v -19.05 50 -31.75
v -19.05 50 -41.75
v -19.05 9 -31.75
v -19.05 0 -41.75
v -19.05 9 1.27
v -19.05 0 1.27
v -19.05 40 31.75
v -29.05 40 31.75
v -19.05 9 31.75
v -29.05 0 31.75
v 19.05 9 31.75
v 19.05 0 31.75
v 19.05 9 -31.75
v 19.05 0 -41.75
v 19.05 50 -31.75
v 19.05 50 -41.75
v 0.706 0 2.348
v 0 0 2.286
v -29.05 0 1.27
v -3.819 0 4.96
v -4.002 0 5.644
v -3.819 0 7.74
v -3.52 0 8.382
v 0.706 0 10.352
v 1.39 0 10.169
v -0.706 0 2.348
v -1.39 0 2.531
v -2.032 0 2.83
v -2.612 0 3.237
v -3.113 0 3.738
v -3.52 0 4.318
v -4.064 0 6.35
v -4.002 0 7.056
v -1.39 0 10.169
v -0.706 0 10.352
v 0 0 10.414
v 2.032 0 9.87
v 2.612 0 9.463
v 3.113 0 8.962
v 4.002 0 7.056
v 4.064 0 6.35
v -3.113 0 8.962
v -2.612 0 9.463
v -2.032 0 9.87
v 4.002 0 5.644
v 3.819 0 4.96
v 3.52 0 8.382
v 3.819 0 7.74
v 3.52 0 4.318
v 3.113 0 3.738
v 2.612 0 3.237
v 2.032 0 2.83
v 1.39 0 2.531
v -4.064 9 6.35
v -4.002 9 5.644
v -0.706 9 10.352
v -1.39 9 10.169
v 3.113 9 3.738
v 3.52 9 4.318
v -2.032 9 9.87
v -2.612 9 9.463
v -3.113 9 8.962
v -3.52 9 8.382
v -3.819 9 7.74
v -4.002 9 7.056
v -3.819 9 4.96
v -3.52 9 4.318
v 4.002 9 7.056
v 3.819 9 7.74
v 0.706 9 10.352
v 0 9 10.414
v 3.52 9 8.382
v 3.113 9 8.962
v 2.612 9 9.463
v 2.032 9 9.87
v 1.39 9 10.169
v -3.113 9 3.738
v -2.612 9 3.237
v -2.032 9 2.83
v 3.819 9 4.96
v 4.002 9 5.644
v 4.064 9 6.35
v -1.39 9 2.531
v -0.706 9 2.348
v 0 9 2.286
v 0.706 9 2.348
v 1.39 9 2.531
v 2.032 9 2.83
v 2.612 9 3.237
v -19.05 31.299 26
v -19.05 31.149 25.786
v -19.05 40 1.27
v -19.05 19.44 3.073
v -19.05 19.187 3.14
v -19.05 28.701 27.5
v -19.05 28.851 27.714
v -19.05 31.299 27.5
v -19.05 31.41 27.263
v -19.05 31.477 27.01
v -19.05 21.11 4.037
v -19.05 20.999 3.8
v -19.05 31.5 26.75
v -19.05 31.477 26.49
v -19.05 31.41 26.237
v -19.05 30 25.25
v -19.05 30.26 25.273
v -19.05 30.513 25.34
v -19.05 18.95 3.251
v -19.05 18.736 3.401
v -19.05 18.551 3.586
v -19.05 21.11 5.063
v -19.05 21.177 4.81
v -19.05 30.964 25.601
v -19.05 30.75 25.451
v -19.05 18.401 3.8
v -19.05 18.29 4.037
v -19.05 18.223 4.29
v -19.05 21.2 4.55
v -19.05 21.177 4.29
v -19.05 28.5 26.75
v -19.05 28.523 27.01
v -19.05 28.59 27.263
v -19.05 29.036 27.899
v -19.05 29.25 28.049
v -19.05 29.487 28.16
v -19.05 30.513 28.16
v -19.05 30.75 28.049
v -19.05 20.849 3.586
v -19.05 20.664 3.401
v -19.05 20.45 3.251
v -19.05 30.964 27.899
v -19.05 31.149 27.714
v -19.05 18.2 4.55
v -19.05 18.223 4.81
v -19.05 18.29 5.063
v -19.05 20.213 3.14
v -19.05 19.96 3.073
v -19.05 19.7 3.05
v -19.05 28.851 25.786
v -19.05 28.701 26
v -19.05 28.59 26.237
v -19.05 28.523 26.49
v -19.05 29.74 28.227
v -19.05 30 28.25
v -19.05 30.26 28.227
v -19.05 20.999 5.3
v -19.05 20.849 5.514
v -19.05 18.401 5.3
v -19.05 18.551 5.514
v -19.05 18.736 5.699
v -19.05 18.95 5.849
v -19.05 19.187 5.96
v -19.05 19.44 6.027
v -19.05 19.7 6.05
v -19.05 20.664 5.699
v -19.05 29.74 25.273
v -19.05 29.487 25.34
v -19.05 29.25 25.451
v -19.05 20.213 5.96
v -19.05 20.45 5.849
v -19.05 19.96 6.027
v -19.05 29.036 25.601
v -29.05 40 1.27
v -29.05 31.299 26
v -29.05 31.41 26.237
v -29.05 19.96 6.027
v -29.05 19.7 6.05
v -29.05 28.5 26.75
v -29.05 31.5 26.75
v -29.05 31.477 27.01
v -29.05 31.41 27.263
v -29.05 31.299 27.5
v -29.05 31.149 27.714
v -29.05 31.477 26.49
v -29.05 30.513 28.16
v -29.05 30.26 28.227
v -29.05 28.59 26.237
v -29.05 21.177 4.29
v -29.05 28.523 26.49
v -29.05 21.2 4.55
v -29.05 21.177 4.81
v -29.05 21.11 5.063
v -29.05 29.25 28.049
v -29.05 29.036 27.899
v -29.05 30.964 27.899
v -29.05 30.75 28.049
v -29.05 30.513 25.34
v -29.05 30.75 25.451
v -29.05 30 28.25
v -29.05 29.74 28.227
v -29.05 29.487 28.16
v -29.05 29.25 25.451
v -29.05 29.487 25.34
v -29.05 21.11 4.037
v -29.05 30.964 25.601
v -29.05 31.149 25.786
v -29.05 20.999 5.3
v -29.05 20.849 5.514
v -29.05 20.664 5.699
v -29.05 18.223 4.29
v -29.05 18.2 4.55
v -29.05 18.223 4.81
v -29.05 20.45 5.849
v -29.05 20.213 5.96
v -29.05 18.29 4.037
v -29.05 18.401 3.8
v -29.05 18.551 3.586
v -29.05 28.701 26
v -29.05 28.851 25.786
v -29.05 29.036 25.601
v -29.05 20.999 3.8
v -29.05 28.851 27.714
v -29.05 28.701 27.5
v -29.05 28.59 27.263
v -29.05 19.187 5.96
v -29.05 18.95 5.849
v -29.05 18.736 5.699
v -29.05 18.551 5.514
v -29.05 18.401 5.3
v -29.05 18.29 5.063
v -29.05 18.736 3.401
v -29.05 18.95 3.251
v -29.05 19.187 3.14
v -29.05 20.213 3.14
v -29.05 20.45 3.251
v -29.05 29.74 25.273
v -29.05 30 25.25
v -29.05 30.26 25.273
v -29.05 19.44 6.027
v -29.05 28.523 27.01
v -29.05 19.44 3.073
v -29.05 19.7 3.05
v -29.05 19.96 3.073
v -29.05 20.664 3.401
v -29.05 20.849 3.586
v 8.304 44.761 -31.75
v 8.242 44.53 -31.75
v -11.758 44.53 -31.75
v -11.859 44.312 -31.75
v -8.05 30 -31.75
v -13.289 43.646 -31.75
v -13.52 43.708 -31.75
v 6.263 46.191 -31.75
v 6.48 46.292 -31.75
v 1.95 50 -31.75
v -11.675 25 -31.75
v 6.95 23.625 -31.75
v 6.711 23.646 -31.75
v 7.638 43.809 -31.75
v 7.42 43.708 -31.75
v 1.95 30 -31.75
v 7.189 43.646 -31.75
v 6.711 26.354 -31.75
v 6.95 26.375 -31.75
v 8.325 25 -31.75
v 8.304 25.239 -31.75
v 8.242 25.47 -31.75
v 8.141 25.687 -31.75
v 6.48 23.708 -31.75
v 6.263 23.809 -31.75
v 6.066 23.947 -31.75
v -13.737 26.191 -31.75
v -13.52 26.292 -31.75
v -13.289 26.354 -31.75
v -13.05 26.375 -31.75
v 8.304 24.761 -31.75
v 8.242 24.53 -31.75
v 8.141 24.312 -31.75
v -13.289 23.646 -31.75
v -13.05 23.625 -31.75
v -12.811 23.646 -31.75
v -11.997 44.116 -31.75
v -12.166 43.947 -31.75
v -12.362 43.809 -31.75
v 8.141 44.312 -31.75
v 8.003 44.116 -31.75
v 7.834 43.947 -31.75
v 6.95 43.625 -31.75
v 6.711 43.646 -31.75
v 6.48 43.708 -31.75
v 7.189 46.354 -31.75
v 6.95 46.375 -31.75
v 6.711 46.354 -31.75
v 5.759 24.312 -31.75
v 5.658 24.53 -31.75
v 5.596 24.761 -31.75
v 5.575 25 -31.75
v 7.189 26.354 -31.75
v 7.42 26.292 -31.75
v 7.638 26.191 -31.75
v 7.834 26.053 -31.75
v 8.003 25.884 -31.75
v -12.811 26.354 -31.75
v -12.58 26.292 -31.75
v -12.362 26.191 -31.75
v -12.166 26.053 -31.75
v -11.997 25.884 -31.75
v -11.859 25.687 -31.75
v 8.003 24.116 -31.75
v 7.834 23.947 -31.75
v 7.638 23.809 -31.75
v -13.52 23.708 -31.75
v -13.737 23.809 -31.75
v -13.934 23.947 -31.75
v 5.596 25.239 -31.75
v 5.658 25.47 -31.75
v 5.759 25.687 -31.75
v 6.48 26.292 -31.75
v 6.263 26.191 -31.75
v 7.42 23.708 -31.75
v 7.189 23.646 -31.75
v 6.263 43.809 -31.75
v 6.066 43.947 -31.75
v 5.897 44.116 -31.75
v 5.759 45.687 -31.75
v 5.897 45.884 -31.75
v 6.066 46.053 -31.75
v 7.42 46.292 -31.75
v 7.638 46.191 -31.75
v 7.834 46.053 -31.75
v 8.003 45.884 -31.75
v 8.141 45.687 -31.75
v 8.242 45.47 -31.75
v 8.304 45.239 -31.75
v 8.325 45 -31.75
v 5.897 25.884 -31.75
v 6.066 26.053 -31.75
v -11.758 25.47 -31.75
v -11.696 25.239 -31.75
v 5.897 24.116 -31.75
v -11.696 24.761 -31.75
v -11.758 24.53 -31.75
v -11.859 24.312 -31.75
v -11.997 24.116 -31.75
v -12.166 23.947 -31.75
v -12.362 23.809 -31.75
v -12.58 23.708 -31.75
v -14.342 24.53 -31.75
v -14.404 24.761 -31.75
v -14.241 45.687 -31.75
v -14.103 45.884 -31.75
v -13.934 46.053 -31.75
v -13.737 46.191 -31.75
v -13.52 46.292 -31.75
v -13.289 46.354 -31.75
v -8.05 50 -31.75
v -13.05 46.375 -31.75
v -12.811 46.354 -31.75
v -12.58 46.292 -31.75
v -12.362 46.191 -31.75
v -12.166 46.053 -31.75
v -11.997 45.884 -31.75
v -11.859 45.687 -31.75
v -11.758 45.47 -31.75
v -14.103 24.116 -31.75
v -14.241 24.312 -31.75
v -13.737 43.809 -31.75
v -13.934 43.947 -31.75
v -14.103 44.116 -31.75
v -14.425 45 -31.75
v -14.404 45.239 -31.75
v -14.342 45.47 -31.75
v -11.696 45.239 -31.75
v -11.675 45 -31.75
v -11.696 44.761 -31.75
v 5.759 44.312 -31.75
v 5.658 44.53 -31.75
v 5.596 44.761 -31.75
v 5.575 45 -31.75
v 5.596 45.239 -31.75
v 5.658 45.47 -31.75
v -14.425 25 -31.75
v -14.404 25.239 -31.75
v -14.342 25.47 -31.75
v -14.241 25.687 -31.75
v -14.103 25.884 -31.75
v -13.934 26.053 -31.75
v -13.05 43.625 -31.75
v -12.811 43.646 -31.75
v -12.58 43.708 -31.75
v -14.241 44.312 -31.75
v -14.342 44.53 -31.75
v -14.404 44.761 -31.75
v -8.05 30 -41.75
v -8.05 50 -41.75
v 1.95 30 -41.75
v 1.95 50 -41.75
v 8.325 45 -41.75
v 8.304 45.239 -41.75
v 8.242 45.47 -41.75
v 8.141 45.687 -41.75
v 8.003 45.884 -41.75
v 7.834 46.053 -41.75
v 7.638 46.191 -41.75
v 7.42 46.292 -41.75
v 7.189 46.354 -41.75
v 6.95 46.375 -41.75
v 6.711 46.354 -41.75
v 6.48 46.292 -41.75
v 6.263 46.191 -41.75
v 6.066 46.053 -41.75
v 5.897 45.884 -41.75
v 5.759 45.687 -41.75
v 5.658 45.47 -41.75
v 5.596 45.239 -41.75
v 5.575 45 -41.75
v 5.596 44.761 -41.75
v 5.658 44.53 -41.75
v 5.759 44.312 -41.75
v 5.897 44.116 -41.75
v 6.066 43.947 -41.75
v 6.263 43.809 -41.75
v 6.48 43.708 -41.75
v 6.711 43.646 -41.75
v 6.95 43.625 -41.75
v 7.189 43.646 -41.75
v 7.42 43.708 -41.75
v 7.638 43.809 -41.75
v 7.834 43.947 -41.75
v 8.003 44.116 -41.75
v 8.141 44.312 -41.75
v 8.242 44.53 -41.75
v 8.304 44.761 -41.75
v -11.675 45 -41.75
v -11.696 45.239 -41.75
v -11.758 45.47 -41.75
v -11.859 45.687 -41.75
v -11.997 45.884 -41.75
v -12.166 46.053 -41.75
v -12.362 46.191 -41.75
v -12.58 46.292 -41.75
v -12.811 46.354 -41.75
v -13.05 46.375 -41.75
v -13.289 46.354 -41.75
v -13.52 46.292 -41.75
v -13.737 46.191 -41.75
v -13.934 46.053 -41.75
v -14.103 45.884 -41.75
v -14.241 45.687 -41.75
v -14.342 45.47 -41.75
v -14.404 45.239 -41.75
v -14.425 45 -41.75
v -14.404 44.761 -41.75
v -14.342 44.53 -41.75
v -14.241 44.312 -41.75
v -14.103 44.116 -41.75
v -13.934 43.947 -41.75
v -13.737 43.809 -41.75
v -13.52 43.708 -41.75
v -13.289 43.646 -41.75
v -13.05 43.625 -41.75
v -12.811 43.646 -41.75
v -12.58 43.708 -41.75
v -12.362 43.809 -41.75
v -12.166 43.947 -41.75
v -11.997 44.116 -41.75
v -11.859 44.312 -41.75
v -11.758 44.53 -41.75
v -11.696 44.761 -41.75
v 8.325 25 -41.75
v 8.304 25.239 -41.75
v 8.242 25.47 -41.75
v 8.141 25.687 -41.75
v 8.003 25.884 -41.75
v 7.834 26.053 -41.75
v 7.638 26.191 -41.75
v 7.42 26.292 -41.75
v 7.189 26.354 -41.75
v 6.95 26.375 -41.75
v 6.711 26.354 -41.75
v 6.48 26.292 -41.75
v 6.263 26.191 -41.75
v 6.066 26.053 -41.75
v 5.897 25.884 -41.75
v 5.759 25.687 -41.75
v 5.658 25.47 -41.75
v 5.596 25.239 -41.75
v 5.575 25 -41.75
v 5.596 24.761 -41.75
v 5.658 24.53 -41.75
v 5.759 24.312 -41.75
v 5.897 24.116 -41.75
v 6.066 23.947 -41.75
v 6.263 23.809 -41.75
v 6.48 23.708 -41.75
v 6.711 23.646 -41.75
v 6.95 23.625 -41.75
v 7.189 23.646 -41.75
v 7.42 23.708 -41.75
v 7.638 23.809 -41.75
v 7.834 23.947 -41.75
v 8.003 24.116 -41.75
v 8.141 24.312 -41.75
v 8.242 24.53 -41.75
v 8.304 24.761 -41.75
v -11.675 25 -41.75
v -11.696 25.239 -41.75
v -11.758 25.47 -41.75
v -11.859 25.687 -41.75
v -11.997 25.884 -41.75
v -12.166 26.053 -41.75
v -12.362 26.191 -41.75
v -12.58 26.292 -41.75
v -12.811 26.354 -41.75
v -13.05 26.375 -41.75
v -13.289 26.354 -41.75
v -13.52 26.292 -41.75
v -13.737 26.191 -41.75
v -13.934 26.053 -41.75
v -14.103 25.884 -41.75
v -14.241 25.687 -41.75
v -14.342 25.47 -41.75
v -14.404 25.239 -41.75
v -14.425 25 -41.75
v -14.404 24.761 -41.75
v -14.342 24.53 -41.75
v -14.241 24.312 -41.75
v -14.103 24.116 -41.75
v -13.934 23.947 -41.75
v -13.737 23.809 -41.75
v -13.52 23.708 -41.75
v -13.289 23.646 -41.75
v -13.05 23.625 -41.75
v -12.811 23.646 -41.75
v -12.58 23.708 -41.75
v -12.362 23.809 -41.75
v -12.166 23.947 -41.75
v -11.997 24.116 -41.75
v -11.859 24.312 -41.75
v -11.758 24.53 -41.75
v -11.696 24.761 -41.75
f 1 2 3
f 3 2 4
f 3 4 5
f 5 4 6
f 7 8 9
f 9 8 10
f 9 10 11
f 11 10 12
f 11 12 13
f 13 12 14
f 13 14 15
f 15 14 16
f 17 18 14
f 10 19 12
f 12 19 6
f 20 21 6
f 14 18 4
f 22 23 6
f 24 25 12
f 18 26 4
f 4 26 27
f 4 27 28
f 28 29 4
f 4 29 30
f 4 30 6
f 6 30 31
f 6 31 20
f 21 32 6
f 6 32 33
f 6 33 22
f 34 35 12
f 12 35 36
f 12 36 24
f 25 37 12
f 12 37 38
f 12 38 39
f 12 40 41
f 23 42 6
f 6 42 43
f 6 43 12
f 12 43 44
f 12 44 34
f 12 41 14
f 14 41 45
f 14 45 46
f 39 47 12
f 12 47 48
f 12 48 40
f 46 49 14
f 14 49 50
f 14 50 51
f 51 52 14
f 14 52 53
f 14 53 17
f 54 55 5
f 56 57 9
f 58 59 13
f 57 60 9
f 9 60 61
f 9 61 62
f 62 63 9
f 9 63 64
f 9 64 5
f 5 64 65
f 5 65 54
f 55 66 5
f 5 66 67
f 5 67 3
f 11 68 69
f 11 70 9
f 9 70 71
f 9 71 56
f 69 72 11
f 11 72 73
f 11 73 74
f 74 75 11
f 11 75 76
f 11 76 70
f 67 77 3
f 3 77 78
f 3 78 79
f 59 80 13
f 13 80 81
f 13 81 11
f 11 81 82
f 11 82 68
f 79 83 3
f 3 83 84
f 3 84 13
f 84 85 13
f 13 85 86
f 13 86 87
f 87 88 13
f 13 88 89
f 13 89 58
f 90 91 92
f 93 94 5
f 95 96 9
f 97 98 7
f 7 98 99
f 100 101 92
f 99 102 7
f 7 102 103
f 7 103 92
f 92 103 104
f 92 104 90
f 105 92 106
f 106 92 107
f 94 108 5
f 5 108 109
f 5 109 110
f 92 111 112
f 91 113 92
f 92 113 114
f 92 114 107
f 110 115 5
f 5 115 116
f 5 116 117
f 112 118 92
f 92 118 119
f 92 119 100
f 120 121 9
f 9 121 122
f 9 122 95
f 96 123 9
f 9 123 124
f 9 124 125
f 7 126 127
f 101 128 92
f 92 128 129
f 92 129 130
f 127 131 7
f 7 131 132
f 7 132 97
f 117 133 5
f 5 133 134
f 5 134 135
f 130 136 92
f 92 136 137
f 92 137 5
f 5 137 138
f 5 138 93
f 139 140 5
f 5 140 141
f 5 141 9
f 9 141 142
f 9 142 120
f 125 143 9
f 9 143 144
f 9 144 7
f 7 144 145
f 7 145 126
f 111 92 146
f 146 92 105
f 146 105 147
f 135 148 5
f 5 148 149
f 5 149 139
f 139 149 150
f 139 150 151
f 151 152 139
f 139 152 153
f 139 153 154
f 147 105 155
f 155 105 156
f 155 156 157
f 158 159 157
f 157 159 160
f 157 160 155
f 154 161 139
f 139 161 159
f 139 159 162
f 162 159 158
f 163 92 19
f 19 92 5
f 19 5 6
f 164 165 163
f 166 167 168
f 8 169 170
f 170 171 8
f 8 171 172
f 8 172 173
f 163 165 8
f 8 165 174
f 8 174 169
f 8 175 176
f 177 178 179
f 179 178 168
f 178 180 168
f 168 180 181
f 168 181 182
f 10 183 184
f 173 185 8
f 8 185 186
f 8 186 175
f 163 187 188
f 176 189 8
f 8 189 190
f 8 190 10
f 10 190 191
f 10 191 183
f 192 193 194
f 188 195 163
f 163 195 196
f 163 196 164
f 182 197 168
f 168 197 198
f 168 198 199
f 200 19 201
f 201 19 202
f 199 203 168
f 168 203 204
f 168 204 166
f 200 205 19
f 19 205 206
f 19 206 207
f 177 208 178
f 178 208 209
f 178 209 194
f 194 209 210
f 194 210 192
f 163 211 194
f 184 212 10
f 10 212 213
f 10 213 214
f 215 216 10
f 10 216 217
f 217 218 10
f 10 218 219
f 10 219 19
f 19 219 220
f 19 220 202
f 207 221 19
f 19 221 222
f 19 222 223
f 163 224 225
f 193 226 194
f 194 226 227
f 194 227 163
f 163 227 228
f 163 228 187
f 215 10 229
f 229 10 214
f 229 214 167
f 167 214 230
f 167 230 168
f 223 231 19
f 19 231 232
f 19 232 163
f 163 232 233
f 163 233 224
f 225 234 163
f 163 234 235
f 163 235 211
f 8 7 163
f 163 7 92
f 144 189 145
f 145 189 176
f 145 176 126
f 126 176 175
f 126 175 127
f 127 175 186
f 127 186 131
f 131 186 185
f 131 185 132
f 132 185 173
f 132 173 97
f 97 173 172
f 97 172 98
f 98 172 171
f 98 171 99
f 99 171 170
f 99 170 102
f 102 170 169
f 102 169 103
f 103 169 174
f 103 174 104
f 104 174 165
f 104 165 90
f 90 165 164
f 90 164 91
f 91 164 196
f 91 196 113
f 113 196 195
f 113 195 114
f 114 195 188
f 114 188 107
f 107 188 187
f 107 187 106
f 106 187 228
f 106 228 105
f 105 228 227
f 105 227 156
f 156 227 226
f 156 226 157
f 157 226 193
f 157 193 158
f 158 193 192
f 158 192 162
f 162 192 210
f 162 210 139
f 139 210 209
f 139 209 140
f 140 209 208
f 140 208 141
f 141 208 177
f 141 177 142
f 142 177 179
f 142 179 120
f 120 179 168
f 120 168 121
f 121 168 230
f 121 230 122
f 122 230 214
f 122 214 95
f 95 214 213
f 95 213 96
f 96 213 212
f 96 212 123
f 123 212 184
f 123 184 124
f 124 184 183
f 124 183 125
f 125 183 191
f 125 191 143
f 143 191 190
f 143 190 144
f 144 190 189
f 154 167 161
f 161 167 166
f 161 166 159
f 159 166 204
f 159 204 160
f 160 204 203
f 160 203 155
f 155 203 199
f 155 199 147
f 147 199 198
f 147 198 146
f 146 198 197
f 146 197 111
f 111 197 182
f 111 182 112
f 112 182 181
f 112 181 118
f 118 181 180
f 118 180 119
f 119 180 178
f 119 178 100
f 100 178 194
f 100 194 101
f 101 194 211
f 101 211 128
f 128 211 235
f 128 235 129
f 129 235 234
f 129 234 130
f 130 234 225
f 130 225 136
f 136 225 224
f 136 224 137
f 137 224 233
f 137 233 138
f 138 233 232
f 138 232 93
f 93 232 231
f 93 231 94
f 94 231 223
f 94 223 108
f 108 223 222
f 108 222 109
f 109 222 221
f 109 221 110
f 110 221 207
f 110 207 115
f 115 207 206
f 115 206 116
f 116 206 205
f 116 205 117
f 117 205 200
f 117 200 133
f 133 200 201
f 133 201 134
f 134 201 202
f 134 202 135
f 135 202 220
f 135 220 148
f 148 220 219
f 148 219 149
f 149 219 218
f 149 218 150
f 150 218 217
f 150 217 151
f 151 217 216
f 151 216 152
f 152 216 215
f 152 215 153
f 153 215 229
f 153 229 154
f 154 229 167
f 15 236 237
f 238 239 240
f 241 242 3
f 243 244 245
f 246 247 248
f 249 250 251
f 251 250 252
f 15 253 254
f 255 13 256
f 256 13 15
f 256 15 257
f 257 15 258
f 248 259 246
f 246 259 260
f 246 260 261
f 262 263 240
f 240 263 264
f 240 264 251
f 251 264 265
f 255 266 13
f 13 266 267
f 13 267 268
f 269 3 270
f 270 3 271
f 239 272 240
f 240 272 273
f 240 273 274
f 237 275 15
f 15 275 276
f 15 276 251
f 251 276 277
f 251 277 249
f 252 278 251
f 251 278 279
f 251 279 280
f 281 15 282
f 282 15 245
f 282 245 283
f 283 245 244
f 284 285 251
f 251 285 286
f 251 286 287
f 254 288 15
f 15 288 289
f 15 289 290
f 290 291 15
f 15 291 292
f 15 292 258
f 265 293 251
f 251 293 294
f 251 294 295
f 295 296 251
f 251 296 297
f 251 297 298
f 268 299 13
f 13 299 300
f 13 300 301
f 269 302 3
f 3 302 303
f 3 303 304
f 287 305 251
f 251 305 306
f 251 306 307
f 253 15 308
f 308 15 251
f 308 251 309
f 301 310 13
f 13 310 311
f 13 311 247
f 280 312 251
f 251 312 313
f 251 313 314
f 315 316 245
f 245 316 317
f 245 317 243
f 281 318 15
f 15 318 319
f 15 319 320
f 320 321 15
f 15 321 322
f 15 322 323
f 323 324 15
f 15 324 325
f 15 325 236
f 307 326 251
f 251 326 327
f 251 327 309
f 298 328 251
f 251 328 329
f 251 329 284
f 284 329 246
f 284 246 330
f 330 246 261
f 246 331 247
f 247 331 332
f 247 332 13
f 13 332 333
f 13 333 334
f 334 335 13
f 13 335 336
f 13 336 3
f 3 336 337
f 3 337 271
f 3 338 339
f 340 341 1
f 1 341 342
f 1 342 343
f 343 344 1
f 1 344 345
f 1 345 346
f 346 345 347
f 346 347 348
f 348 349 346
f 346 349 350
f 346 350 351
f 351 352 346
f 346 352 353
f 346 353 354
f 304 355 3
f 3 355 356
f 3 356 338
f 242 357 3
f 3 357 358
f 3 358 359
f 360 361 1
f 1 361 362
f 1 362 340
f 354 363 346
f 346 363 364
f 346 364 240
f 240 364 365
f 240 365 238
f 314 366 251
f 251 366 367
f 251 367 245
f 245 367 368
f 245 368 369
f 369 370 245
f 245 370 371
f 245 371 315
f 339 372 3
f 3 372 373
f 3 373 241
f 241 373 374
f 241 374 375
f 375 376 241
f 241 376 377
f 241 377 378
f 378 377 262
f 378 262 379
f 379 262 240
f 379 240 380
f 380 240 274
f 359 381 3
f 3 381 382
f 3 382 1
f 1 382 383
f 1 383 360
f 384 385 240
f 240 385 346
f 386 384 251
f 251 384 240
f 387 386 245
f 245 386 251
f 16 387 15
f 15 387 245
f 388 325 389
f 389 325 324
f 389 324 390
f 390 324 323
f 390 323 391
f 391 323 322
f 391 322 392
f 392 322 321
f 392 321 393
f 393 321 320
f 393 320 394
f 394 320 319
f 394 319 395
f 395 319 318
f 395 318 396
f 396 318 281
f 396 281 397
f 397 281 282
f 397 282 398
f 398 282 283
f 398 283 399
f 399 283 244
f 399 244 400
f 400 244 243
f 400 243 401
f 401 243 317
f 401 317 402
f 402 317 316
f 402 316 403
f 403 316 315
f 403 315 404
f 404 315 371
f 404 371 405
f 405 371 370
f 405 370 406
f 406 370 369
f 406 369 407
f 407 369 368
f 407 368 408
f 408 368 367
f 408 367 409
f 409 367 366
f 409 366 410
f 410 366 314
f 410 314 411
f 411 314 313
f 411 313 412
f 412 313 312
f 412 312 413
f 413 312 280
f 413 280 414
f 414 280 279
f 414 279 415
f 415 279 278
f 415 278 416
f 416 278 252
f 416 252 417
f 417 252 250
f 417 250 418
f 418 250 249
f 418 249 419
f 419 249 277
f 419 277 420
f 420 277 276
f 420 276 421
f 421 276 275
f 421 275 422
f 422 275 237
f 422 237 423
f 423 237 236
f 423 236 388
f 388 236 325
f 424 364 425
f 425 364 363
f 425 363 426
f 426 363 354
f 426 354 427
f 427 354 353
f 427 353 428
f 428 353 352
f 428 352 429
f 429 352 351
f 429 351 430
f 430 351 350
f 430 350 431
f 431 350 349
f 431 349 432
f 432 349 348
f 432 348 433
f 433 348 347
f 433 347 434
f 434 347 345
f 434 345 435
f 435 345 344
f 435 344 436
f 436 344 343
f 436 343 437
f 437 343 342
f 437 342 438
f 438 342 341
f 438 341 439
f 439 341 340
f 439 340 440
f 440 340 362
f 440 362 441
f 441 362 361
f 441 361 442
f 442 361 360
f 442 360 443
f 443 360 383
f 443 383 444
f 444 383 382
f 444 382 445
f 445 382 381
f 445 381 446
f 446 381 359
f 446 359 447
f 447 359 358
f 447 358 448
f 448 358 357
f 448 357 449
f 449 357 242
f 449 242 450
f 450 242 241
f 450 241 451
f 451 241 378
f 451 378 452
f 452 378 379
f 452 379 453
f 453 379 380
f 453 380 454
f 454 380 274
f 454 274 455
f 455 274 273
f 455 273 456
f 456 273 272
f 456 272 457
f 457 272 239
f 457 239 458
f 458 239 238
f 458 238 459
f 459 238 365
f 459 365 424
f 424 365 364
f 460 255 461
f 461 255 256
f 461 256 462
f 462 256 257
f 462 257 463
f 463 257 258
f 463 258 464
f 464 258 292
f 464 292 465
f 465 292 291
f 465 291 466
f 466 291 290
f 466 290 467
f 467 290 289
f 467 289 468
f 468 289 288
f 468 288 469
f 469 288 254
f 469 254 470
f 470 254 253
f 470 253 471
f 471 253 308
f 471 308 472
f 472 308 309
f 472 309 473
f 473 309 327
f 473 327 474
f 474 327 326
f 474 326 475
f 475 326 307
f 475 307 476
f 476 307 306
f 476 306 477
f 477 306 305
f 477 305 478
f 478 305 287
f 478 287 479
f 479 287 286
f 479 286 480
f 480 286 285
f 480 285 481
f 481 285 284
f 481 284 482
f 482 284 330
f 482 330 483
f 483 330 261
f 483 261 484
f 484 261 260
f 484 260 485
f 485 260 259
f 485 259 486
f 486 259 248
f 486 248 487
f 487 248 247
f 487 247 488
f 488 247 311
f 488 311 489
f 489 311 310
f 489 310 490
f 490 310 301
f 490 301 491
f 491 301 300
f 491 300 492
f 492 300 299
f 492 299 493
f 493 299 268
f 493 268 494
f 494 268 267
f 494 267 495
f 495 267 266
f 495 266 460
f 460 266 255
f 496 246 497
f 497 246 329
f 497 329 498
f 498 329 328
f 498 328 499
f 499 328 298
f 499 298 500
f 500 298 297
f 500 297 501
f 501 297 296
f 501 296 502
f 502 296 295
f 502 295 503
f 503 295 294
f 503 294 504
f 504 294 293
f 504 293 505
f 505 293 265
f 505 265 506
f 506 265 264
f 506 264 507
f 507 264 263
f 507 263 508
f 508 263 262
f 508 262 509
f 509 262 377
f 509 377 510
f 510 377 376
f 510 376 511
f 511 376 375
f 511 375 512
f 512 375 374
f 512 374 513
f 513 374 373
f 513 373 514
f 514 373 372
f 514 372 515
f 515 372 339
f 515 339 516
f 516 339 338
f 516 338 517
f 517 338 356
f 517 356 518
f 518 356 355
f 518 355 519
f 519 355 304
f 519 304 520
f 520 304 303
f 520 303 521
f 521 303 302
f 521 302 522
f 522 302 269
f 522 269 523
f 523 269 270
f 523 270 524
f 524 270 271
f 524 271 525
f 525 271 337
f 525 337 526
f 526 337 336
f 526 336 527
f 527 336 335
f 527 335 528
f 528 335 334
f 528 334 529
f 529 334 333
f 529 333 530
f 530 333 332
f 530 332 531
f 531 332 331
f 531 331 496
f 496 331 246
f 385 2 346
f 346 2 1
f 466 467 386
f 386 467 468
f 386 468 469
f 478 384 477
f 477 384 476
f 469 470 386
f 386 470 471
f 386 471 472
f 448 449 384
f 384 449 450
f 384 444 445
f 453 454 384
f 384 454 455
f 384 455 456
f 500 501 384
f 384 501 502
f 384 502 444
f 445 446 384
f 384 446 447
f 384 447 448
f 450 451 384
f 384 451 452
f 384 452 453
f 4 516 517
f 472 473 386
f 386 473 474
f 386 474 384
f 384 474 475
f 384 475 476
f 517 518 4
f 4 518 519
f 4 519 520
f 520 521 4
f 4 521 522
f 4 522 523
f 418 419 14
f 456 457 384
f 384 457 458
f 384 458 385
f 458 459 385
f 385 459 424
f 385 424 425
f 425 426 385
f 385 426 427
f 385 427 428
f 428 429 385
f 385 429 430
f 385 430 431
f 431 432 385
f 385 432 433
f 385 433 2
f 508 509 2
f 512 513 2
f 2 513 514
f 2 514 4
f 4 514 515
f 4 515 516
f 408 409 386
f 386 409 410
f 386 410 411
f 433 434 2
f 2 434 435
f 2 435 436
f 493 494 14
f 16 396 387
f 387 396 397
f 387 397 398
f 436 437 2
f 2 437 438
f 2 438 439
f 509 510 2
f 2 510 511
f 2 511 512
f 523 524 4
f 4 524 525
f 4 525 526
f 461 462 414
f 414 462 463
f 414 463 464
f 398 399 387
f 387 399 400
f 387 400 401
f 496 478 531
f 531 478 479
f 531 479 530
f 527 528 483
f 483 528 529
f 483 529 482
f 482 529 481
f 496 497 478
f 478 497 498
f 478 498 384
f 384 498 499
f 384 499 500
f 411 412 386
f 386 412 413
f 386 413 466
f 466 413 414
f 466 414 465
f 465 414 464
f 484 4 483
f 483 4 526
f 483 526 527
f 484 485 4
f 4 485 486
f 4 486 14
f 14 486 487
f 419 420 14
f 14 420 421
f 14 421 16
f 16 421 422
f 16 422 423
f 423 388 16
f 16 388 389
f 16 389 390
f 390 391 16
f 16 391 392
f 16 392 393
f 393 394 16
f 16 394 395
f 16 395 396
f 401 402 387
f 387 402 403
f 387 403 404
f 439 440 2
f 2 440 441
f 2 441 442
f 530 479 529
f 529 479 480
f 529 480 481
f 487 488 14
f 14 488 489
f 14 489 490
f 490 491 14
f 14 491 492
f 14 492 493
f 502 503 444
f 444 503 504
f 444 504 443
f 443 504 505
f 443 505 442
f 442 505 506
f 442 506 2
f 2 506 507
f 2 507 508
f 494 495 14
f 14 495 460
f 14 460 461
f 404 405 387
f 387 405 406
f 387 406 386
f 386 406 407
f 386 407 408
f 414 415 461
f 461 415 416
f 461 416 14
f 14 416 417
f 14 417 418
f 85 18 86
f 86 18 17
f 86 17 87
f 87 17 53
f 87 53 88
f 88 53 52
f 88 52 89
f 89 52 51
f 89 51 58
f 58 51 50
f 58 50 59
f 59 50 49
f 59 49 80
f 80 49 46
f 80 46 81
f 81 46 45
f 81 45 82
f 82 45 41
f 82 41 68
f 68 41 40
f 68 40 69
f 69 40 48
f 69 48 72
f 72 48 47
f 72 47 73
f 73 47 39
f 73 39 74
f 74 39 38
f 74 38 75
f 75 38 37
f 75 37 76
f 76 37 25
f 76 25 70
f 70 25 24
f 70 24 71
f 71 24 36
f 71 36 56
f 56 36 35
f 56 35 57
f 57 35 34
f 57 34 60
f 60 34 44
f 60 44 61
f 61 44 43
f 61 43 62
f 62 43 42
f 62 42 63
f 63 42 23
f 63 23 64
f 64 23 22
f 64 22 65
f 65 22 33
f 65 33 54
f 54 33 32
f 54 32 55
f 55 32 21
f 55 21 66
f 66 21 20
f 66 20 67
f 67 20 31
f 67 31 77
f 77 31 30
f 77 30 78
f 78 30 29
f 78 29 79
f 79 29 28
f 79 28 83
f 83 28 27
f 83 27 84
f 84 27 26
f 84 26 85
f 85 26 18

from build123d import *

# Parameters (mm, degrees)
SKETCH1_W           = 38.1
SKETCH1_H           = 63.5
BOSS_EXTRUDE1_DEPTH = 9
SKETCH1_3_W         = 10
SKETCH1_3_H         = 30.48
BOSS_EXTRUDE2_DEPTH = 40
SKETCH2_R           = 1.5
CUT_EXTRUDE1_DEPTH  = 10
SKETCH3_R           = 1.375
BOSS_EXTRUDE3_DEPTH = 10
CUT_EXTRUDE2_DEPTH  = 9


with BuildPart() as part:
    # Sketch1 → Boss-Extrude1 (new body)
    with BuildSketch(Plane(origin=(0, 0, 0), x_dir=(1, 0, 0), z_dir=(0, 1, 0))):
        Rectangle(SKETCH1_W, SKETCH1_H)
    extrude(amount=BOSS_EXTRUDE1_DEPTH)

    # Sketch1<3> → Boss-Extrude2 (add)
    with BuildSketch(Plane(origin=(0, 0, 0), x_dir=(1, 0, 0), z_dir=(0, 1, 0))):
        with Locations((-24.05, -16.51)):
            Rectangle(SKETCH1_3_W, SKETCH1_3_H)
    extrude(amount=BOSS_EXTRUDE2_DEPTH)

    # Sketch2 → Cut-Extrude1 (cut)
    with BuildSketch(Plane.ZY.offset(29.05)):
        with Locations((4.55, 19.7)):
            Circle(SKETCH2_R)
        with Locations((26.75, 30)):
            Circle(SKETCH2_R)
    extrude(amount=-CUT_EXTRUDE1_DEPTH, mode=Mode.SUBTRACT)

    # Sketch3 → Boss-Extrude3 (add)
    with BuildSketch(Plane(origin=(0, 0, -31.75), x_dir=(-1, 0, 0), z_dir=(0, 0, -1))):
        Polygon((-19.05, 0), (19.05, 0), (19.05, 50), (8.05, 50), (8.05, 30), (-1.95, 30), (-1.95, 50), (-19.05, 50), align=None)
        with Locations((-6.95, 25)):
            Circle(SKETCH3_R, mode=Mode.SUBTRACT)
        with Locations((-6.95, 45)):
            Circle(SKETCH3_R, mode=Mode.SUBTRACT)
        with Locations((13.05, 25)):
            Circle(SKETCH3_R, mode=Mode.SUBTRACT)
        with Locations((13.05, 45)):
            Circle(SKETCH3_R, mode=Mode.SUBTRACT)
    extrude(amount=BOSS_EXTRUDE3_DEPTH)

    # Sketch1<4> → Cut-Extrude2 (cut)
    with BuildSketch(Plane(origin=(0, 0, 0), x_dir=(1, 0, 0), z_dir=(0, 1, 0))):
        with BuildLine():
            ThreePointArc((4.064, -6.35), (2.873681959, -3.476318041), (0, -2.286))
            Line((0, -2.286), (0, -10.414))
            ThreePointArc((0, -10.414), (2.873681959, -9.223681959), (4.064, -6.35))
        make_face()
        with BuildLine():
            Line((0, -10.414), (0, -2.286))
            ThreePointArc((0, -2.286), (-4.064, -6.35), (0, -10.414))
        make_face()
    extrude(amount=CUT_EXTRUDE2_DEPTH, mode=Mode.SUBTRACT)


solid = part.part
